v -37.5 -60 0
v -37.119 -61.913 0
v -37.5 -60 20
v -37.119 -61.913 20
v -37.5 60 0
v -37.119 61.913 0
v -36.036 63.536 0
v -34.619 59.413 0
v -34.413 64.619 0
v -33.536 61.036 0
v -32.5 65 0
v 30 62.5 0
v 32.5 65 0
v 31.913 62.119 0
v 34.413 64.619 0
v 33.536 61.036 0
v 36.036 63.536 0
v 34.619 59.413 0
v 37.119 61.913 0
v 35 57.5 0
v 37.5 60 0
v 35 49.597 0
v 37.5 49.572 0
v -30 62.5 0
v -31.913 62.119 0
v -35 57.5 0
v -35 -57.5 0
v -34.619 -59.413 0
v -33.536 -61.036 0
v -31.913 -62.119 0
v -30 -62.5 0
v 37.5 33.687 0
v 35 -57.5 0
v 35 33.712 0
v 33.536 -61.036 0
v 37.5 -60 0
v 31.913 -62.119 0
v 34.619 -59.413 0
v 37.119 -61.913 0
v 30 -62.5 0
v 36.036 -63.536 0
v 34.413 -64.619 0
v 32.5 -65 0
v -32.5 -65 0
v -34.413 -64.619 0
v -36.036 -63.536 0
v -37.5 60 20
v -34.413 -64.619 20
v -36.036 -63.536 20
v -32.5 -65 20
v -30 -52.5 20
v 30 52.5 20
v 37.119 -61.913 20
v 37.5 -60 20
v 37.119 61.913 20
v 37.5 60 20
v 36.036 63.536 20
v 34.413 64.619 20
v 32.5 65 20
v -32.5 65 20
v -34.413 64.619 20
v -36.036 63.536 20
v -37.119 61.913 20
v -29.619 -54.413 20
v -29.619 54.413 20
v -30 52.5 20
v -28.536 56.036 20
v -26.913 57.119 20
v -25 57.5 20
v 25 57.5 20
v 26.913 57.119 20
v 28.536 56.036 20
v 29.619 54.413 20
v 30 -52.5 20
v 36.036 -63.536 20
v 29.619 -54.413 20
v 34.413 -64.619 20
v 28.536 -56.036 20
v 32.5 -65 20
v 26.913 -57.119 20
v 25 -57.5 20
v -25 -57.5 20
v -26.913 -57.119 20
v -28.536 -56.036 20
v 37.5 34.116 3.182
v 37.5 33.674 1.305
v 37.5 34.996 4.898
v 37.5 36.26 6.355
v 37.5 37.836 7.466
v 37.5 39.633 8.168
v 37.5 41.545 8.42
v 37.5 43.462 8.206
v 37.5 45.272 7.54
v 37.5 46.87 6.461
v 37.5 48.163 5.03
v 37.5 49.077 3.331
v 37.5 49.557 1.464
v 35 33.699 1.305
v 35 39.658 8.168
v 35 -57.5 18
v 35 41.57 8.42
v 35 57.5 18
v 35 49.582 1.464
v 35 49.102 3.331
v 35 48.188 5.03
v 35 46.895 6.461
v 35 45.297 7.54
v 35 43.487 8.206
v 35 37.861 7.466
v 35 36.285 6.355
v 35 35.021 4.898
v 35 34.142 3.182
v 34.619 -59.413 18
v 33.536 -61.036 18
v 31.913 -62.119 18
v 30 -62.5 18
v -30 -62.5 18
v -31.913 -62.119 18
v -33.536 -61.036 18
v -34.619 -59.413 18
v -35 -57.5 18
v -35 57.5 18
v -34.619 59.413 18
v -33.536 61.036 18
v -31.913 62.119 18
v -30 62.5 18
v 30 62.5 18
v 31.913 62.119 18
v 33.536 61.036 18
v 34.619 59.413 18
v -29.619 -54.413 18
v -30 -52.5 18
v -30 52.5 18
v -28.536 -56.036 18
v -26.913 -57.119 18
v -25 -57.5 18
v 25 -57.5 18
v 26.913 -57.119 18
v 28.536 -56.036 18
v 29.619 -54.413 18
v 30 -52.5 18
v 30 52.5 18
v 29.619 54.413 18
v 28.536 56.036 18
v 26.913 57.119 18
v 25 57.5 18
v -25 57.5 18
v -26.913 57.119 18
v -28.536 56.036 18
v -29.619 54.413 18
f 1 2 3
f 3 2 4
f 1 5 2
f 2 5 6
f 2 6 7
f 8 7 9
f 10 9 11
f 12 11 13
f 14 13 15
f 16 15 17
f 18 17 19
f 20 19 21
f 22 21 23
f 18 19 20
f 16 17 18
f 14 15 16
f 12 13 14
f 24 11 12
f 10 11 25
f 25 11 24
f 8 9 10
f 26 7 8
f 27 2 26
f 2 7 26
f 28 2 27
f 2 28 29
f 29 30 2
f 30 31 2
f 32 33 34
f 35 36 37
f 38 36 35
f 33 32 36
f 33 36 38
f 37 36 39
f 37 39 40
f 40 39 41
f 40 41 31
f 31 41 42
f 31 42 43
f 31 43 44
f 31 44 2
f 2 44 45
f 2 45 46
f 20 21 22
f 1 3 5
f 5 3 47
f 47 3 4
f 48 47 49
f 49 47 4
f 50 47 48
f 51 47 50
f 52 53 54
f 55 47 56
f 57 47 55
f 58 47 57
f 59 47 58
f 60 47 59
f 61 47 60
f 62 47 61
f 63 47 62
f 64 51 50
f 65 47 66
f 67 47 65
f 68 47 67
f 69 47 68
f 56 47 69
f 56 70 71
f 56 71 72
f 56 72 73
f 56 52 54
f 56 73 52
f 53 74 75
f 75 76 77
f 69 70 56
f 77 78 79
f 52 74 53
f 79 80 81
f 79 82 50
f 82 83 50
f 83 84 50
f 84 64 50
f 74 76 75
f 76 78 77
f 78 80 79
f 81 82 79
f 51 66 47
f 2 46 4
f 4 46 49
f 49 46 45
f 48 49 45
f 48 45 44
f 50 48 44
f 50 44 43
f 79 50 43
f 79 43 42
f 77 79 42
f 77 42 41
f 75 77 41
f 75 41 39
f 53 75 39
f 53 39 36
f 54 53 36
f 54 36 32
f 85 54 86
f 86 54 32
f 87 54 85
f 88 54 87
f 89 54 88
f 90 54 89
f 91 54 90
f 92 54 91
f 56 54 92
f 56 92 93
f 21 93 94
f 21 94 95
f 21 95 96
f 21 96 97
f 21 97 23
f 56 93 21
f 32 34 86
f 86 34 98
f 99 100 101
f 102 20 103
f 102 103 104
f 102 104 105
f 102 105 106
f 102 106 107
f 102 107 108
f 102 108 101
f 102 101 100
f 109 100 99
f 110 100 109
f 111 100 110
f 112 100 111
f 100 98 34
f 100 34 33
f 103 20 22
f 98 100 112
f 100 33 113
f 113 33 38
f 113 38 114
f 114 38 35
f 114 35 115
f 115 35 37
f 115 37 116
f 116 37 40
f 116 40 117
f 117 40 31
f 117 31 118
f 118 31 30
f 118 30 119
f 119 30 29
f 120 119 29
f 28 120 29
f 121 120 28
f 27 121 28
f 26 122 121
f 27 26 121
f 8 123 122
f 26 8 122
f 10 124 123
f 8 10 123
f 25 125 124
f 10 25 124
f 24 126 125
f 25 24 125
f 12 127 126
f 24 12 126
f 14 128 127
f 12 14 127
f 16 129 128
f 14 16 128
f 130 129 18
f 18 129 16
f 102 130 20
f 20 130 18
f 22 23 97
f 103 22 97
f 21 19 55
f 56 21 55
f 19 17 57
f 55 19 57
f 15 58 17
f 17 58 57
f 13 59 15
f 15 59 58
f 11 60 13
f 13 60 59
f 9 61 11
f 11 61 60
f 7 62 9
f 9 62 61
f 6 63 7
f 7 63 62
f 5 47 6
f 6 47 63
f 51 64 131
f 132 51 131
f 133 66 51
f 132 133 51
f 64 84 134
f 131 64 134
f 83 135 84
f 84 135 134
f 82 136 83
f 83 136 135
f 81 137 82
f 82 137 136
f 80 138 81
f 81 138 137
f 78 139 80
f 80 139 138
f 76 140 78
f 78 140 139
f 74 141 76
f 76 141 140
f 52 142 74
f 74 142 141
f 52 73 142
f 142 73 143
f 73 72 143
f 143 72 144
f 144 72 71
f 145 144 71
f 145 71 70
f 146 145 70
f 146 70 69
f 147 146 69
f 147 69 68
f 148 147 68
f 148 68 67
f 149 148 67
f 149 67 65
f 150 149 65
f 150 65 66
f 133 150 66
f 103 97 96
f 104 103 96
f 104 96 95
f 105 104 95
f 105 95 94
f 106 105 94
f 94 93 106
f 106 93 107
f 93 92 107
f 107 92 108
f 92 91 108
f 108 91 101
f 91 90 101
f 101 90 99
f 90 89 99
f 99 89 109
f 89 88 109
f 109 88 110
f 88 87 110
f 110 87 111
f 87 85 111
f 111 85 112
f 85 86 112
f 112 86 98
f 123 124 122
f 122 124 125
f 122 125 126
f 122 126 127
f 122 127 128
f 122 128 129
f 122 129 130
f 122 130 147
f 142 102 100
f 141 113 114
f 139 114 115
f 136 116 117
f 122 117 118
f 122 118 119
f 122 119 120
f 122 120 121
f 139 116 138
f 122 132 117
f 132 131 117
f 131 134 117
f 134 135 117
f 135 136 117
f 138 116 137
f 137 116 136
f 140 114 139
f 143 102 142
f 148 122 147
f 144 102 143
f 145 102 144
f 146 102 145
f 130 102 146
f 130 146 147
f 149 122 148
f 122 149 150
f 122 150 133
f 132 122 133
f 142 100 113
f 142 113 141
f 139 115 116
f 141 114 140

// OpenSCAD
module roundedRect(size, radius) {
	x = size[0];
	y = size[1];
	z = size[2];

	linear_extrude(height=z)
	
	hull() {
	  // place 4 circles in the corners, with the given radius
	  translate([(-x/2)+(radius/2), (-y/2)+(radius/2), 0])
	  circle(r=radius);
	
	  translate([(x/2)-(radius/2), (-y/2)+(radius/2), 0])
	  circle(r=radius);
	
	  translate([(-x/2)+(radius/2), (y/2)-(radius/2), 0])
	  circle(r=radius);
	
	  translate([(x/2)-(radius/2), (y/2)-(radius/2), 0])
	  circle(r=radius);
	}
}

module roundedRectHole(size, radius) {
	x = size[0];
	y = size[1];
	z = size[2];

	linear_extrude(height=z)

	hull() {
	  // place 4 circles in the corners, with the given radius
	  translate([(-x/2)+(radius/2), (-y/2)+(radius/2), 0])
	  circle(r=radius);
	
	  translate([(x/2)-(radius/2), (-y/2)+(radius/2), 0])
	  circle(r=radius);
	
	  translate([(-x/2)+(radius/2), (y/2)-(radius/2), 0])
	  circle(r=radius);
	
	  translate([(x/2)-(radius/2), (y/2)-(radius/2), 0])
	  circle(r=radius);
	}
}

module power_hole(distance, rot, size) {
	rotate(a = rot, v = [1, 100, 0]) {
		translate([0, distance, 30]) {
			// Power switch is 34mm tall
			cylinder(r = size, h = 34, center = true);
		}
	}
}

// Two of these will be made, like bread on a sammich
difference() {
	roundedRect([70, 125, 20], 5, true);
	// Make the top of the hole shape stick out so that we know the surface is empty
	roundedRectHole([55, 110, 22], 5, true);
	// Do the same but by having the hole shape stick out the bottom
	translate(0,0,-5) {
		roundedRectHole([65, 120, 18], 5, true);
	}
	// Power switch has an 8mm radius
	//power_hole(-42, 90, 8);
	// Same for manual override
	power_hole(42, 90, 8);
}
